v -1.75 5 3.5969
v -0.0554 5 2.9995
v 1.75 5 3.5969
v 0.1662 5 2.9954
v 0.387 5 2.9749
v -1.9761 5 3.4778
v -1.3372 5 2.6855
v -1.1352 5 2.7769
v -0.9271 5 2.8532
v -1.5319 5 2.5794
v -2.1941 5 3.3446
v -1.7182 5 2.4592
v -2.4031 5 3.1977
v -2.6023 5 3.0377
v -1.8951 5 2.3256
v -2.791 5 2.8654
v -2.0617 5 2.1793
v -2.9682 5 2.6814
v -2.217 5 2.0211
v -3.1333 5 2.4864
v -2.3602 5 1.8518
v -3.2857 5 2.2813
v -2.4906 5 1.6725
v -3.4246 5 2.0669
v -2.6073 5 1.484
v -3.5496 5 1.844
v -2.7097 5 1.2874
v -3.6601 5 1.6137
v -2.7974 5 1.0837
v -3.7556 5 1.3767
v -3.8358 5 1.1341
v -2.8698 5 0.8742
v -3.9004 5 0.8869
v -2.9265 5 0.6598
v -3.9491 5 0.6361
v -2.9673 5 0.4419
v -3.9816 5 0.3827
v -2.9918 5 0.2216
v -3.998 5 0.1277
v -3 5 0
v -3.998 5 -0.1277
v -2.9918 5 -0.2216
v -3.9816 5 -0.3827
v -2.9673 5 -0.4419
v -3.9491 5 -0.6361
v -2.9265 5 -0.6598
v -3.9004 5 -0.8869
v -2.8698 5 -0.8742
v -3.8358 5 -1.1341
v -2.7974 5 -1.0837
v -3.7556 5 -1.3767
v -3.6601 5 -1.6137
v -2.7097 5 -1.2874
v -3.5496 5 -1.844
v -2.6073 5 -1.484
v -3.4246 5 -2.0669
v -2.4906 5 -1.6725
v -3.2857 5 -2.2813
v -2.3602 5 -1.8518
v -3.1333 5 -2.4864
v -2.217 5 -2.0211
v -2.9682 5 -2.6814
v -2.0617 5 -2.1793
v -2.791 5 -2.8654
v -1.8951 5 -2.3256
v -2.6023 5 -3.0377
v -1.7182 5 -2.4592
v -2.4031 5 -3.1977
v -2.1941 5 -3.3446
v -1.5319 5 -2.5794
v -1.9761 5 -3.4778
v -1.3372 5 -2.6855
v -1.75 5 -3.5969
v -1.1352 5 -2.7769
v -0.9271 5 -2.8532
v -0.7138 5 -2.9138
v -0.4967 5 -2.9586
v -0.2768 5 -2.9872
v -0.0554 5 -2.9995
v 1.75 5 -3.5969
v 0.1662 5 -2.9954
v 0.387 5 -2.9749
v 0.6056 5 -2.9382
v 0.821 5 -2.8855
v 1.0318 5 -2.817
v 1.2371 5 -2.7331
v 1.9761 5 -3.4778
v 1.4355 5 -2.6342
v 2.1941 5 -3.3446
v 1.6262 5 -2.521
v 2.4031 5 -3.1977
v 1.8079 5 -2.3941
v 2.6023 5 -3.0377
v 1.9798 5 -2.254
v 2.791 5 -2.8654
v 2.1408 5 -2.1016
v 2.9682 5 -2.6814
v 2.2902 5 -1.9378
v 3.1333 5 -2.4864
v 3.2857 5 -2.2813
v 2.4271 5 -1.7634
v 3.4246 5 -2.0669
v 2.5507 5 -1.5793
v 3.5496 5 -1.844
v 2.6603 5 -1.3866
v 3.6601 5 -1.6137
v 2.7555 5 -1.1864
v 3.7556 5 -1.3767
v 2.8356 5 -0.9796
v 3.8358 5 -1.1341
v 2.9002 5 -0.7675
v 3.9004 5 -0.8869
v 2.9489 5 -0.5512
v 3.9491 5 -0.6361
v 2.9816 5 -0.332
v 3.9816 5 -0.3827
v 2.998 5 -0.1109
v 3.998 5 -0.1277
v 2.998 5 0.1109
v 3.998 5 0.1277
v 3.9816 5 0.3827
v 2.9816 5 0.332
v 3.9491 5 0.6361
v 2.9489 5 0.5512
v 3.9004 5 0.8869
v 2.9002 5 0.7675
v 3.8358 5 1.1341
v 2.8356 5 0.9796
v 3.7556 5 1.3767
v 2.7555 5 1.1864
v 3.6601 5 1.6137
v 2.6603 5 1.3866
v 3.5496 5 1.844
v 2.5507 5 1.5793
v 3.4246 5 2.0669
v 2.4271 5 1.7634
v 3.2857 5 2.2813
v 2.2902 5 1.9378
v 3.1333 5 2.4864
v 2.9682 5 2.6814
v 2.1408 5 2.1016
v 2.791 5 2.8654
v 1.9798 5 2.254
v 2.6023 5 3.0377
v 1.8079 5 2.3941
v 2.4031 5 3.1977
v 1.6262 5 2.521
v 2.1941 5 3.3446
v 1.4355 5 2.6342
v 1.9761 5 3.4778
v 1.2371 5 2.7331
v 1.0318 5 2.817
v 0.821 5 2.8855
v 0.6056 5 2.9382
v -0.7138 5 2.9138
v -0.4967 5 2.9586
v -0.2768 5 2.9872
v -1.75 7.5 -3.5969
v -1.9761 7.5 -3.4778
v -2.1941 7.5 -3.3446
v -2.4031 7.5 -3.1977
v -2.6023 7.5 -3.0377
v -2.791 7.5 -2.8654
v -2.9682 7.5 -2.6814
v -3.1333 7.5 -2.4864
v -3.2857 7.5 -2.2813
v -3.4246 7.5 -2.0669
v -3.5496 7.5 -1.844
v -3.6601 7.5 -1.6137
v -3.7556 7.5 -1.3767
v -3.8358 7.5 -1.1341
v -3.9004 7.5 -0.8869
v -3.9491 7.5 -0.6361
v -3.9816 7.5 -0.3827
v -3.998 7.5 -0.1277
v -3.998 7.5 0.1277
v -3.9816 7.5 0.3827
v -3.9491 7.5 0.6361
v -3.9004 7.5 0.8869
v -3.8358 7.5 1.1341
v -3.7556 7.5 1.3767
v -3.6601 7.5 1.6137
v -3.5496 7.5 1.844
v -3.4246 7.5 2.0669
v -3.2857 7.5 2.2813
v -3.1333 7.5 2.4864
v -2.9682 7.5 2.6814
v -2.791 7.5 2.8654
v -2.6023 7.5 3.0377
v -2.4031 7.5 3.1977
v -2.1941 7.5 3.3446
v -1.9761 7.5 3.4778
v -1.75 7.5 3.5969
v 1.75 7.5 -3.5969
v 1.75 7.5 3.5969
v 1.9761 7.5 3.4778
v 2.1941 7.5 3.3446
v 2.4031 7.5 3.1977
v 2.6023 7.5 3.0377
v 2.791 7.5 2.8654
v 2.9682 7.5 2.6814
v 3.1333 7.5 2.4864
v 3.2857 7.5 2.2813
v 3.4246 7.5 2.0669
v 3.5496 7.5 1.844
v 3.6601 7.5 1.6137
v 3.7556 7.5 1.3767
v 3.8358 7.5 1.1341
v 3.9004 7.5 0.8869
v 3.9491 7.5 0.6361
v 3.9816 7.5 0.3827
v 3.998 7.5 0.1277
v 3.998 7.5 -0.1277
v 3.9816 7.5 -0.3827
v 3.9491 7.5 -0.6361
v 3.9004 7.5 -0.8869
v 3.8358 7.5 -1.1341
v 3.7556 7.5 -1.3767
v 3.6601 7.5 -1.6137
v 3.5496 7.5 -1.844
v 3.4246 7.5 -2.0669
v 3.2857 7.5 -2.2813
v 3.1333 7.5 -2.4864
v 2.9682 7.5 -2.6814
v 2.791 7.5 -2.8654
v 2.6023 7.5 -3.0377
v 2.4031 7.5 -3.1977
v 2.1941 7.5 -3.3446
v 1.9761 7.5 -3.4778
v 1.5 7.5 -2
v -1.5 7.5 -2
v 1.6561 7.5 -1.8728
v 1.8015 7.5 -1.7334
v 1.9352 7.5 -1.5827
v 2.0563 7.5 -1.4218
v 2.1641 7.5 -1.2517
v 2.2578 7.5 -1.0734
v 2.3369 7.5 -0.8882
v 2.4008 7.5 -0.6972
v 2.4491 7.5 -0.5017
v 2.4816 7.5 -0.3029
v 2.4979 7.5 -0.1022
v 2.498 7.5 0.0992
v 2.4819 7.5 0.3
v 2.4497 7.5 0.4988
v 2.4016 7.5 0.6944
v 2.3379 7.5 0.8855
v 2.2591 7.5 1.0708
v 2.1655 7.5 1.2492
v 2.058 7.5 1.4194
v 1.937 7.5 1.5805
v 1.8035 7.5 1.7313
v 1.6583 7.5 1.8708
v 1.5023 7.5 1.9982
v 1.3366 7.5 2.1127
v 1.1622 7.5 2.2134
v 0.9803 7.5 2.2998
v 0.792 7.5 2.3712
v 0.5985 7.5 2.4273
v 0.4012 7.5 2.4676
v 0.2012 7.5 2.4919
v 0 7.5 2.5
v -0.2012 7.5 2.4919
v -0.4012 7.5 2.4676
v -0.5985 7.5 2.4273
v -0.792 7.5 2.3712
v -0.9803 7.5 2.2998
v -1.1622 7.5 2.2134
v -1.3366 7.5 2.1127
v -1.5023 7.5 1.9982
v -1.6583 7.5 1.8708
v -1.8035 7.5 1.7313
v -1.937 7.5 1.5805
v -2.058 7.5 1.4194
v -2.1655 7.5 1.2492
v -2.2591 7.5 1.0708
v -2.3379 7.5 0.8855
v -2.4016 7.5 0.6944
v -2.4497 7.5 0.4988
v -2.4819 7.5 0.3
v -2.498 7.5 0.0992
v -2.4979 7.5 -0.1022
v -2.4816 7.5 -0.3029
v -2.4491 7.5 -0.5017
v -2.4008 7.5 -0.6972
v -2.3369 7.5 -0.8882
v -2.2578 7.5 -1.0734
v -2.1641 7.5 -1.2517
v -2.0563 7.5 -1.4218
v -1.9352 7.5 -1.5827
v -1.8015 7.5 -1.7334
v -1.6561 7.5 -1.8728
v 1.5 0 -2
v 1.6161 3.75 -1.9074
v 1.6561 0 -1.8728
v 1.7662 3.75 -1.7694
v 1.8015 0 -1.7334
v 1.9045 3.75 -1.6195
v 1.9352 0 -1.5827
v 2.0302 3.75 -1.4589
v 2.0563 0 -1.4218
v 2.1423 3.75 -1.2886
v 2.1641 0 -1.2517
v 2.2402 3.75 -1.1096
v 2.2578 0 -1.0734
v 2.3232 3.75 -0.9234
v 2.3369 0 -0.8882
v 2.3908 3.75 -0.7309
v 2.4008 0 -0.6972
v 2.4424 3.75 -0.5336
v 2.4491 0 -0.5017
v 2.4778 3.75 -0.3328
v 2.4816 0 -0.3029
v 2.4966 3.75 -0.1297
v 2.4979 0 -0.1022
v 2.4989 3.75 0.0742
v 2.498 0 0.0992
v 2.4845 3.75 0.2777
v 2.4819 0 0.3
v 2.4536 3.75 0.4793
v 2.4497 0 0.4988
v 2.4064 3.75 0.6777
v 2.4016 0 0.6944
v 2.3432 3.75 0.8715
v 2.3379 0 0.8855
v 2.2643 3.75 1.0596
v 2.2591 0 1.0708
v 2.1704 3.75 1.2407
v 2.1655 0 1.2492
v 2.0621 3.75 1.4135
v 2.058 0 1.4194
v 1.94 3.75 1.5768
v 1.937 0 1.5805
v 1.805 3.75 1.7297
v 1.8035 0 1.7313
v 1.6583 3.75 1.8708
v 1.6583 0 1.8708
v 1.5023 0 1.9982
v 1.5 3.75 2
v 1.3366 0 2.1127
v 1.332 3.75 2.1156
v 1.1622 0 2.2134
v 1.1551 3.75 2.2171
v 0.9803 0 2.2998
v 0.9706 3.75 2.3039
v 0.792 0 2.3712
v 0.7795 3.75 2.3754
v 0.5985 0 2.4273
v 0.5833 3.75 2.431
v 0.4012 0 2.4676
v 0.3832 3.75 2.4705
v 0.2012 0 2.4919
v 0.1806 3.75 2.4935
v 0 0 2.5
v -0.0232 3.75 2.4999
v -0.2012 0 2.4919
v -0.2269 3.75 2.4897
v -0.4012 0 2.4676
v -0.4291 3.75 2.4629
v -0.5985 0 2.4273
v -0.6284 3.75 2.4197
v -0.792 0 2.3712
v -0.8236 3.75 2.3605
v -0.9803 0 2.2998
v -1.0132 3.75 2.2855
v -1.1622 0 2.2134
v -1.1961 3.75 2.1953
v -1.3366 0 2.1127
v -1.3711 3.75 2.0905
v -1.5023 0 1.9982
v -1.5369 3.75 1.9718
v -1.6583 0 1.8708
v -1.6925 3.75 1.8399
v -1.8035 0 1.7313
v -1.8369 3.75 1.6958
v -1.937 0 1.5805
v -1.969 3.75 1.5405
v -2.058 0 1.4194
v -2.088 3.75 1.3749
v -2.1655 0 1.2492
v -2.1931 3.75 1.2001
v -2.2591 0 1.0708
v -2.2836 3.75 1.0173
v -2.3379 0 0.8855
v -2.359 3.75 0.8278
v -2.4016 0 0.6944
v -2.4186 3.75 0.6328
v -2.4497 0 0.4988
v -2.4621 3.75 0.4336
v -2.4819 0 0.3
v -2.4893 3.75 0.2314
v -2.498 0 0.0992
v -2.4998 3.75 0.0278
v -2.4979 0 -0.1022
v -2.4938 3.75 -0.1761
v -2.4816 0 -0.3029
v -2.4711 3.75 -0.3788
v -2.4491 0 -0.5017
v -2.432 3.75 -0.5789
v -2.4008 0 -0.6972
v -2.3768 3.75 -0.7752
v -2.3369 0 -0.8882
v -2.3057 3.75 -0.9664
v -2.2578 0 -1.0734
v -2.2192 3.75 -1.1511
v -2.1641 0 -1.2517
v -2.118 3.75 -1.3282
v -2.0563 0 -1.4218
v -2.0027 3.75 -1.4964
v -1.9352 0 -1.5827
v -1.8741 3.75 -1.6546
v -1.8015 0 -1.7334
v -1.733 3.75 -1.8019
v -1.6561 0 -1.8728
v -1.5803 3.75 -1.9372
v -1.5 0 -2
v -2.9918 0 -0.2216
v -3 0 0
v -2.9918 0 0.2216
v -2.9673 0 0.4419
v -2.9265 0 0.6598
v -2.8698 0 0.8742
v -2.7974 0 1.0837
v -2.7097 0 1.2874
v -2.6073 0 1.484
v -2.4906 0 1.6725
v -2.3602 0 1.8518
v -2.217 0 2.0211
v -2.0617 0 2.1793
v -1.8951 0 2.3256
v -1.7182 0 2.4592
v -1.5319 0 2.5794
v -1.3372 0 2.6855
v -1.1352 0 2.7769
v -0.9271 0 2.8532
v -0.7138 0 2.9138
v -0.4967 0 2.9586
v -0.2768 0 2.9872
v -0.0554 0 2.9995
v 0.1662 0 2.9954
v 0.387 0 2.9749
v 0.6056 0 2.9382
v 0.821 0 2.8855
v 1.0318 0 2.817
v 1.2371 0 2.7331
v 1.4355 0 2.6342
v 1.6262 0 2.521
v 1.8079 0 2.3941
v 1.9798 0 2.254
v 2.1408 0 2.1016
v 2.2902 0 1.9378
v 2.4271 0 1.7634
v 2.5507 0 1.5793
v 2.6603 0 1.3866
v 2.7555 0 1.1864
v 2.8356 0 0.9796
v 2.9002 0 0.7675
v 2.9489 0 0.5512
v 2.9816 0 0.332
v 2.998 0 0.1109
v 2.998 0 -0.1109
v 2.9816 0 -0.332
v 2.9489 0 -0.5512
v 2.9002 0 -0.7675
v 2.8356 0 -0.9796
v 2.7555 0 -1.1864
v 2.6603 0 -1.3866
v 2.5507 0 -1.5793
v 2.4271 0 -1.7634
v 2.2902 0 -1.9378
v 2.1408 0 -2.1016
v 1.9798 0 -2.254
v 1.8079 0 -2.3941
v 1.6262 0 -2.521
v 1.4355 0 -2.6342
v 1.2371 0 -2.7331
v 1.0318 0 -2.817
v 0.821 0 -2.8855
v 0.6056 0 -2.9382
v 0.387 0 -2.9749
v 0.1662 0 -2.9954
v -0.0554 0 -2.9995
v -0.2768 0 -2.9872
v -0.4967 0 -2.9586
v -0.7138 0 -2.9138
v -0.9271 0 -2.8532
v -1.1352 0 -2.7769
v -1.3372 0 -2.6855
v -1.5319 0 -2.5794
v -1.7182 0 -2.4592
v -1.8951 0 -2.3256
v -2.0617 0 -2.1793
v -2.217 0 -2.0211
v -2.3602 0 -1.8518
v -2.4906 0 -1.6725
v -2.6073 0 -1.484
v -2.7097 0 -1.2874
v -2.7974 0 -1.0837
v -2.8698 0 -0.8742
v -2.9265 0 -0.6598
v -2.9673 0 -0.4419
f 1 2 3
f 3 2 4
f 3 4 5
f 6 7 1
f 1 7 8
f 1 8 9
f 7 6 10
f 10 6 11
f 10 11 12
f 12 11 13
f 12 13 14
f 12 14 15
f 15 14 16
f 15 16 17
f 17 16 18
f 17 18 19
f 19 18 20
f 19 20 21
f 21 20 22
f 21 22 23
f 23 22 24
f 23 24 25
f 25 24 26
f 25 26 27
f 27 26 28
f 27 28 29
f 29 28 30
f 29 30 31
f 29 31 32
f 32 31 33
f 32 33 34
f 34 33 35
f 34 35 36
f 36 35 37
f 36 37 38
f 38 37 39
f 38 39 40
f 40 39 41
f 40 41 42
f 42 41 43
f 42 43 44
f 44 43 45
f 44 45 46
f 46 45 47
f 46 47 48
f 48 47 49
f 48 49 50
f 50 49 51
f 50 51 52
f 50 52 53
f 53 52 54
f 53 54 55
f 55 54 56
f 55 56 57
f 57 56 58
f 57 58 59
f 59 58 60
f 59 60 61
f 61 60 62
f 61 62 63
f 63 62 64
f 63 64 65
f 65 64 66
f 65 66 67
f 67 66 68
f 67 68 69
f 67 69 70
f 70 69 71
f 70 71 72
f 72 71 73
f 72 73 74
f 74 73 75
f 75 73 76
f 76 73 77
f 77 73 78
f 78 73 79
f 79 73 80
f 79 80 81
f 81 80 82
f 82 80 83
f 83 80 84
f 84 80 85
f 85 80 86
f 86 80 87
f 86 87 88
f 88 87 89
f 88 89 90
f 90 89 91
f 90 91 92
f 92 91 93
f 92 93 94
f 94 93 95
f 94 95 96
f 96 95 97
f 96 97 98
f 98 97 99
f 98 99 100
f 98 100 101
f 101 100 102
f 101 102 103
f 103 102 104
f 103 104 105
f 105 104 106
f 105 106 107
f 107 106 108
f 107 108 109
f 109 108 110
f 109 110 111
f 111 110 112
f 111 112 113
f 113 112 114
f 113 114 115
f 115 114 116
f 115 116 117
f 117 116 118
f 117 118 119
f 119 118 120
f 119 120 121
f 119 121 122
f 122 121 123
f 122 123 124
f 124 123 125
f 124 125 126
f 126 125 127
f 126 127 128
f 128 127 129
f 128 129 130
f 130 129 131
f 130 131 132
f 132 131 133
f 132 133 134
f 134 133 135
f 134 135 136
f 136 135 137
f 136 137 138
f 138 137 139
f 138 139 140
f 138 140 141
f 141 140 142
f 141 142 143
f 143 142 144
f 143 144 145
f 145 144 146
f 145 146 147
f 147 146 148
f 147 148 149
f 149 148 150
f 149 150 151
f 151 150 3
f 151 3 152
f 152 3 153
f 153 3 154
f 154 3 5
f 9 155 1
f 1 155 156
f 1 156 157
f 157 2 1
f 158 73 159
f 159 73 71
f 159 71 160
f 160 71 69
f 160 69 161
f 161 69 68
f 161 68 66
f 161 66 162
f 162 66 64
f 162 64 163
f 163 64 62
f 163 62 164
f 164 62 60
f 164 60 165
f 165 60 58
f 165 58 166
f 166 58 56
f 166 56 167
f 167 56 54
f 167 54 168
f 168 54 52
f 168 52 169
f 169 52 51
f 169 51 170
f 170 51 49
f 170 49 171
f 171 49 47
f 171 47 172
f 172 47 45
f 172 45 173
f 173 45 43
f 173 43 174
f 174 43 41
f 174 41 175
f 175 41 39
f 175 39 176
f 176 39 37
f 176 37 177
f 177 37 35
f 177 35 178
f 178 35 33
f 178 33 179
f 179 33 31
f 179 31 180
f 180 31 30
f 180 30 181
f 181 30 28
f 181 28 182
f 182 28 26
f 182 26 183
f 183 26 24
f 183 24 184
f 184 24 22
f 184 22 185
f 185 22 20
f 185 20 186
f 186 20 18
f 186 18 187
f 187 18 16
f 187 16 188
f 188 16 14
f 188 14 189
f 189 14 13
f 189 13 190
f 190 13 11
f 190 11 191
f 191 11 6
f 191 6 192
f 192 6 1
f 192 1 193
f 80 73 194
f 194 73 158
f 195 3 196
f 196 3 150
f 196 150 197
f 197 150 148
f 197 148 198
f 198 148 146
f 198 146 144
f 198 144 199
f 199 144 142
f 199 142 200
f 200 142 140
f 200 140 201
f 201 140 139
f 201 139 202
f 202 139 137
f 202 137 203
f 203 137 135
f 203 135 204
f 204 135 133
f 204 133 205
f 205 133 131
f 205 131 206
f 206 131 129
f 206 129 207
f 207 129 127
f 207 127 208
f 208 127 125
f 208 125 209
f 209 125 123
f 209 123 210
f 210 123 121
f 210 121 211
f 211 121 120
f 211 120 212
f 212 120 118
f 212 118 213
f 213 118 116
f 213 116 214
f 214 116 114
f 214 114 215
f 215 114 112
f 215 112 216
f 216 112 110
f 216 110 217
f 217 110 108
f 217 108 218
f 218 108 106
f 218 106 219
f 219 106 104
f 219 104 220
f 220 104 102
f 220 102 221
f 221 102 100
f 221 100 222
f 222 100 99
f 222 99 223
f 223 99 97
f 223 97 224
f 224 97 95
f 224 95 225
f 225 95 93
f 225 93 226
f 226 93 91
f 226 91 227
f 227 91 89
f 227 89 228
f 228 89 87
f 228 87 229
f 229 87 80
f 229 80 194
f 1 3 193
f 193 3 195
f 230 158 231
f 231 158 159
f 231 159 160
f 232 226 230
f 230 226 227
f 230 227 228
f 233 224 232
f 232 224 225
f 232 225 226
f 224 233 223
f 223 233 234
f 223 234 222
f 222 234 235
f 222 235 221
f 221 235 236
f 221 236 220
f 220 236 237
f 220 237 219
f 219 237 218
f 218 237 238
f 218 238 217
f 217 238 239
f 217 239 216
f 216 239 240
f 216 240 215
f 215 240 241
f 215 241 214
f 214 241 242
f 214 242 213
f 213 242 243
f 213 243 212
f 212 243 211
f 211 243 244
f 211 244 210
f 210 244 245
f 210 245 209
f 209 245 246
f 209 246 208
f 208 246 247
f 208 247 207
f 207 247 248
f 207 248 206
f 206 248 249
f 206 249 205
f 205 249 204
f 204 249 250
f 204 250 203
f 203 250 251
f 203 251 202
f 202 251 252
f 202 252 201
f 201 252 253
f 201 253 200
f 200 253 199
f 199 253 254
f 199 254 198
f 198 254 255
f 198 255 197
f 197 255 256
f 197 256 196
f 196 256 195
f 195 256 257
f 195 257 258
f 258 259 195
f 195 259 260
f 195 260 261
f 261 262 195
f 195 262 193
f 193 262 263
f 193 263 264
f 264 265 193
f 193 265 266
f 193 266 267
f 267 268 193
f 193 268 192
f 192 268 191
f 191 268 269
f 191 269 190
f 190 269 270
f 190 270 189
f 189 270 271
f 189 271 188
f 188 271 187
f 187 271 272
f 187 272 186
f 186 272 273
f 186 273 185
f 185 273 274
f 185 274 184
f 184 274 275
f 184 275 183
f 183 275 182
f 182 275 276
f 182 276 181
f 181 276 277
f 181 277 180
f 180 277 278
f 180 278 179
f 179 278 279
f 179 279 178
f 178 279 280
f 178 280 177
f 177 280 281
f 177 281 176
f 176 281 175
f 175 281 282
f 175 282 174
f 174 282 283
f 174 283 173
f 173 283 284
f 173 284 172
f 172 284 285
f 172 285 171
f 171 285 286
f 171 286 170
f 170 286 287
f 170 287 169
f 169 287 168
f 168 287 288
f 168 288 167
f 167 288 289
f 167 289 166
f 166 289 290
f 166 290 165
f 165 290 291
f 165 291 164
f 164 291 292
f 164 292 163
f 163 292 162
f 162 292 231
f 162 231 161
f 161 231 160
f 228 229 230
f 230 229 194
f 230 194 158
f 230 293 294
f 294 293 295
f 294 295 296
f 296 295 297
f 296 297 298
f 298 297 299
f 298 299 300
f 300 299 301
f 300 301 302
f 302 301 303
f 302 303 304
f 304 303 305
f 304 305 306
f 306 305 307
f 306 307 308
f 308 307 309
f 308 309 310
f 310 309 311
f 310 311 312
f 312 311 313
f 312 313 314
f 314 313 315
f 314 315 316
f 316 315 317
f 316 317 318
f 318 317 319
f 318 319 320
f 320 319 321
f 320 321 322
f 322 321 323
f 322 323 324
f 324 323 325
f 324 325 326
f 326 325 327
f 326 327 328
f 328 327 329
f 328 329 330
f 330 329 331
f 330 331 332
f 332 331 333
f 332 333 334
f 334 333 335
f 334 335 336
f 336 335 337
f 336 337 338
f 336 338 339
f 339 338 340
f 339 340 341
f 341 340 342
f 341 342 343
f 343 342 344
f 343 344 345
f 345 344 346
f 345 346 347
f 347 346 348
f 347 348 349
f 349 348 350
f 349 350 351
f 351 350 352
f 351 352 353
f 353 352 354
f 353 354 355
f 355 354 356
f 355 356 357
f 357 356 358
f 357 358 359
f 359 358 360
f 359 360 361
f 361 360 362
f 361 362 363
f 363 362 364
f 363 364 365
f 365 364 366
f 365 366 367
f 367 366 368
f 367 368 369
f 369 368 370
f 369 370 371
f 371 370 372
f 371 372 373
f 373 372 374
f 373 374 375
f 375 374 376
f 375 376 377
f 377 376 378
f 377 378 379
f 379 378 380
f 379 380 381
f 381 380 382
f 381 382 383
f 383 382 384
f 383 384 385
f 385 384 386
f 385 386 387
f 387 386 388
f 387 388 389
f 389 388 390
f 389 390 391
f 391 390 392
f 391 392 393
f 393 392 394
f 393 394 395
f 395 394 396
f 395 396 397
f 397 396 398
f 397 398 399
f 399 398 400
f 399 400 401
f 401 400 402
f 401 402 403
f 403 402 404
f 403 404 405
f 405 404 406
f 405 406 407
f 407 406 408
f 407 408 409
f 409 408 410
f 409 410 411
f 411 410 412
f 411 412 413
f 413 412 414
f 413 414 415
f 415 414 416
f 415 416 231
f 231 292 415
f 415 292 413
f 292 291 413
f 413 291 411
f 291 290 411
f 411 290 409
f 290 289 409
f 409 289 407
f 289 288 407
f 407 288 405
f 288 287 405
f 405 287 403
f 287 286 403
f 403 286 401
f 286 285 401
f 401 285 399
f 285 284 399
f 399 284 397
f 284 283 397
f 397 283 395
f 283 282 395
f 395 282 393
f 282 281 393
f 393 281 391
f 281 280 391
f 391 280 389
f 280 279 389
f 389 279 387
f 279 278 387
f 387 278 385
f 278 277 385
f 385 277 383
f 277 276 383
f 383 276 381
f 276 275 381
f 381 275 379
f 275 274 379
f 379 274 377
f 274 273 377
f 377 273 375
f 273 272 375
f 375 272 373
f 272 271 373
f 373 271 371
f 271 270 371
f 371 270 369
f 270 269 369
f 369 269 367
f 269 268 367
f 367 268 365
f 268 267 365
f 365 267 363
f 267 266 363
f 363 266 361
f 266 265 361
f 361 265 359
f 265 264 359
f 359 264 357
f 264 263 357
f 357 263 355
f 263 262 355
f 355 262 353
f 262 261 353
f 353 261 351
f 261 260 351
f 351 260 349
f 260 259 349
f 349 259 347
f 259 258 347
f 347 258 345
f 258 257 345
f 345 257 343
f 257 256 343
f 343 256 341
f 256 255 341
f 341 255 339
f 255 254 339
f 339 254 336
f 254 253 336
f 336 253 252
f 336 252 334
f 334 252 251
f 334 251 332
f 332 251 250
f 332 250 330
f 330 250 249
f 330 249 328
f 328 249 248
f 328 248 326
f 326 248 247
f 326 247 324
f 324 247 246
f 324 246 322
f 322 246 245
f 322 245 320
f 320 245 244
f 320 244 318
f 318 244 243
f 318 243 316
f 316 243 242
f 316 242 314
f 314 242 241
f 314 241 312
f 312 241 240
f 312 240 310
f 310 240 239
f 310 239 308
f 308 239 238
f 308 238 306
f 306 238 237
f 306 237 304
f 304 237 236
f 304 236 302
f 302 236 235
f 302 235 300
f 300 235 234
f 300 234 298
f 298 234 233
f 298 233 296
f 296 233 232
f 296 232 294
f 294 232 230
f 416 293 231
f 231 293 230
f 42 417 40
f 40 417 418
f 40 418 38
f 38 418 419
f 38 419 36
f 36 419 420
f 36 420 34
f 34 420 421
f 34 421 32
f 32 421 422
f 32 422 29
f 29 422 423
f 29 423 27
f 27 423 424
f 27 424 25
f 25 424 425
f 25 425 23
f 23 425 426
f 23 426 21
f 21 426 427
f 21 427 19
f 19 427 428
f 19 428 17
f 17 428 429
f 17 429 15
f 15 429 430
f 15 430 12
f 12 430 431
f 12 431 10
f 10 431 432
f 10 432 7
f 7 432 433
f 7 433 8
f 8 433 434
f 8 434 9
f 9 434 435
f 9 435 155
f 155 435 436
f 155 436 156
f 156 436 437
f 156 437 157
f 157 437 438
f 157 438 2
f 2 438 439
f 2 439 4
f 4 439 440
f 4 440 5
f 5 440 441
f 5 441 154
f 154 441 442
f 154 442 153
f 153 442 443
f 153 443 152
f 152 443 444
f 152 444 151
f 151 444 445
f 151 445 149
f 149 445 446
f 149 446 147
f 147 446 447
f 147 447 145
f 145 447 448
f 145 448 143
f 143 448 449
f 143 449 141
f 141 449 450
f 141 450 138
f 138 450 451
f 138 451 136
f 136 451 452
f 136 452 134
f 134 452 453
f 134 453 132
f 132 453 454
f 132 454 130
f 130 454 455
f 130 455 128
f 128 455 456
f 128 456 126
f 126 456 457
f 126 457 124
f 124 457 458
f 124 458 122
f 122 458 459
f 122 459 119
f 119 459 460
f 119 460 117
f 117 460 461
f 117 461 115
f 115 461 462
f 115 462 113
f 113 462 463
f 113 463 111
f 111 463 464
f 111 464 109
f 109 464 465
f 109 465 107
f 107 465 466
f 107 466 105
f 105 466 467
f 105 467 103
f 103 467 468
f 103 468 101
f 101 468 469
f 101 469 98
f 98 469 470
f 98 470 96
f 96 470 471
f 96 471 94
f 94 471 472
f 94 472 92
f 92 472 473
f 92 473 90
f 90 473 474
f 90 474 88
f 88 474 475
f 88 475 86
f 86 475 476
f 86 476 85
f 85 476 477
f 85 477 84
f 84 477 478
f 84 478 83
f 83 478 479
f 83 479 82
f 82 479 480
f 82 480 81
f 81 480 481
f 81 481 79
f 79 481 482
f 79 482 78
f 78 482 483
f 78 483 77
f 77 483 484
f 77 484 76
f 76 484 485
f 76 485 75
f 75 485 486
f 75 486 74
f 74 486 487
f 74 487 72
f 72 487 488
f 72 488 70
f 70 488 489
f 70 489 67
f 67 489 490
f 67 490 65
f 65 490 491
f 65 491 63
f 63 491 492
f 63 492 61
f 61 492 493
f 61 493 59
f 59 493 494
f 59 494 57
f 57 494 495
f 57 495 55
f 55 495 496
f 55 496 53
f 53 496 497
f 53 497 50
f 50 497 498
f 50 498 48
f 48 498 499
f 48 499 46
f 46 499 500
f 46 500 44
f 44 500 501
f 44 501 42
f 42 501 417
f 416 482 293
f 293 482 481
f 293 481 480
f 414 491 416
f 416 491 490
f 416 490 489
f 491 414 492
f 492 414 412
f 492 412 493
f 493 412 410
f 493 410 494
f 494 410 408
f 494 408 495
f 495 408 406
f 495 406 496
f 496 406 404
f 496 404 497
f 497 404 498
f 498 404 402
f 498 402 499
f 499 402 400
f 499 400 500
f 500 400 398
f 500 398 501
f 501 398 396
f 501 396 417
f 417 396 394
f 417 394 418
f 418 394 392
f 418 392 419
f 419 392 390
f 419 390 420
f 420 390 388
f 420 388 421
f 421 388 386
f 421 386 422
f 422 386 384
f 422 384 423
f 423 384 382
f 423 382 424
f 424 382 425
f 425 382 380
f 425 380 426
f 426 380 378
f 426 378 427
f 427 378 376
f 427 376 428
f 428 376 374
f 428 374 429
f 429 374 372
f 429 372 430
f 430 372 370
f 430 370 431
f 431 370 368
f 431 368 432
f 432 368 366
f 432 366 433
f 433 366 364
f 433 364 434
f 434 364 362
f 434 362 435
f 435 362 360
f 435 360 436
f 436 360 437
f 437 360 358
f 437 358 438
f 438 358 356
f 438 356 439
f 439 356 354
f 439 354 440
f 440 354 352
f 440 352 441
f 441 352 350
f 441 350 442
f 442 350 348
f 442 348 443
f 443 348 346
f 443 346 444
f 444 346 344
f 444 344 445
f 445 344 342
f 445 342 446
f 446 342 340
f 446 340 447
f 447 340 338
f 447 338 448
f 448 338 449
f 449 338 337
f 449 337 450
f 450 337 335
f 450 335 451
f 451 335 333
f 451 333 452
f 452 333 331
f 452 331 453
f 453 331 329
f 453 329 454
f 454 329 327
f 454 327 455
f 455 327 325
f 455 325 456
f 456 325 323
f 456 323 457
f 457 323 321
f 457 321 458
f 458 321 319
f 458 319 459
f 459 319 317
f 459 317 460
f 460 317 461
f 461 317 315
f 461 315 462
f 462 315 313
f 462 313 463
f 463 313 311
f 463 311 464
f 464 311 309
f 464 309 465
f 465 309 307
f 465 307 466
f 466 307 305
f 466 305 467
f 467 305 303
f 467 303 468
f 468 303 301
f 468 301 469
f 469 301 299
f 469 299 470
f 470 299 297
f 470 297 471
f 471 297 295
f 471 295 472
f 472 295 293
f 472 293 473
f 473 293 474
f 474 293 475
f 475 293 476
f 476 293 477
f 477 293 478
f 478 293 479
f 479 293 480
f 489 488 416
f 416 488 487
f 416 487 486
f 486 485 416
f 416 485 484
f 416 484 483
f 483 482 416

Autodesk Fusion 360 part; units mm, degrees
sketch "Sketch1" plane through (0, 0, 0) normal (0, 1, 0) x (1, 0, 0)
  arc A0 (-1.5, 2) -> (1.5, 2) centre (0, 0) ccw
  line L0 (1.5, 2) -> (-1.5, 2)
  circle A1 centre (0, 0) radius 3
  dimension "d2" = 3
  dimension "d3" = 2.5
  dimension "d4" = 6
extrude "Extrude1" add sketch "Sketch1" along normal blind 5
sketch "Sketch2" plane through (0, 5, 0) normal (0, 1, 0) x (-1, 0, 0)
  arc A0 (1.5, -2) -> (-1.5, -2) centre (0, 0) ccw
  line L0 (-1.5, -2) -> (1.5, -2)
  arc A1 (1.75, -3.5969) -> (1.75, 3.5969) centre (0, 0) ccw
  arc A2 (-1.75, 3.5969) -> (-1.75, -3.5969) centre (0, 0) ccw
  line L1 (-1.75, -3.5969) -> (1.75, -3.5969)
  line L2 (1.75, 3.5969) -> (-1.75, 3.5969)
  dimension "d7" = 3
  dimension "d8" = 2.5
  dimension "d9" = 4
  dimension "d10" = 4
  dimension "d11" = 3.5
  dimension "d12" = 3.5
extrude "Extrude2" add sketch "Sketch2" along normal blind 2.5
